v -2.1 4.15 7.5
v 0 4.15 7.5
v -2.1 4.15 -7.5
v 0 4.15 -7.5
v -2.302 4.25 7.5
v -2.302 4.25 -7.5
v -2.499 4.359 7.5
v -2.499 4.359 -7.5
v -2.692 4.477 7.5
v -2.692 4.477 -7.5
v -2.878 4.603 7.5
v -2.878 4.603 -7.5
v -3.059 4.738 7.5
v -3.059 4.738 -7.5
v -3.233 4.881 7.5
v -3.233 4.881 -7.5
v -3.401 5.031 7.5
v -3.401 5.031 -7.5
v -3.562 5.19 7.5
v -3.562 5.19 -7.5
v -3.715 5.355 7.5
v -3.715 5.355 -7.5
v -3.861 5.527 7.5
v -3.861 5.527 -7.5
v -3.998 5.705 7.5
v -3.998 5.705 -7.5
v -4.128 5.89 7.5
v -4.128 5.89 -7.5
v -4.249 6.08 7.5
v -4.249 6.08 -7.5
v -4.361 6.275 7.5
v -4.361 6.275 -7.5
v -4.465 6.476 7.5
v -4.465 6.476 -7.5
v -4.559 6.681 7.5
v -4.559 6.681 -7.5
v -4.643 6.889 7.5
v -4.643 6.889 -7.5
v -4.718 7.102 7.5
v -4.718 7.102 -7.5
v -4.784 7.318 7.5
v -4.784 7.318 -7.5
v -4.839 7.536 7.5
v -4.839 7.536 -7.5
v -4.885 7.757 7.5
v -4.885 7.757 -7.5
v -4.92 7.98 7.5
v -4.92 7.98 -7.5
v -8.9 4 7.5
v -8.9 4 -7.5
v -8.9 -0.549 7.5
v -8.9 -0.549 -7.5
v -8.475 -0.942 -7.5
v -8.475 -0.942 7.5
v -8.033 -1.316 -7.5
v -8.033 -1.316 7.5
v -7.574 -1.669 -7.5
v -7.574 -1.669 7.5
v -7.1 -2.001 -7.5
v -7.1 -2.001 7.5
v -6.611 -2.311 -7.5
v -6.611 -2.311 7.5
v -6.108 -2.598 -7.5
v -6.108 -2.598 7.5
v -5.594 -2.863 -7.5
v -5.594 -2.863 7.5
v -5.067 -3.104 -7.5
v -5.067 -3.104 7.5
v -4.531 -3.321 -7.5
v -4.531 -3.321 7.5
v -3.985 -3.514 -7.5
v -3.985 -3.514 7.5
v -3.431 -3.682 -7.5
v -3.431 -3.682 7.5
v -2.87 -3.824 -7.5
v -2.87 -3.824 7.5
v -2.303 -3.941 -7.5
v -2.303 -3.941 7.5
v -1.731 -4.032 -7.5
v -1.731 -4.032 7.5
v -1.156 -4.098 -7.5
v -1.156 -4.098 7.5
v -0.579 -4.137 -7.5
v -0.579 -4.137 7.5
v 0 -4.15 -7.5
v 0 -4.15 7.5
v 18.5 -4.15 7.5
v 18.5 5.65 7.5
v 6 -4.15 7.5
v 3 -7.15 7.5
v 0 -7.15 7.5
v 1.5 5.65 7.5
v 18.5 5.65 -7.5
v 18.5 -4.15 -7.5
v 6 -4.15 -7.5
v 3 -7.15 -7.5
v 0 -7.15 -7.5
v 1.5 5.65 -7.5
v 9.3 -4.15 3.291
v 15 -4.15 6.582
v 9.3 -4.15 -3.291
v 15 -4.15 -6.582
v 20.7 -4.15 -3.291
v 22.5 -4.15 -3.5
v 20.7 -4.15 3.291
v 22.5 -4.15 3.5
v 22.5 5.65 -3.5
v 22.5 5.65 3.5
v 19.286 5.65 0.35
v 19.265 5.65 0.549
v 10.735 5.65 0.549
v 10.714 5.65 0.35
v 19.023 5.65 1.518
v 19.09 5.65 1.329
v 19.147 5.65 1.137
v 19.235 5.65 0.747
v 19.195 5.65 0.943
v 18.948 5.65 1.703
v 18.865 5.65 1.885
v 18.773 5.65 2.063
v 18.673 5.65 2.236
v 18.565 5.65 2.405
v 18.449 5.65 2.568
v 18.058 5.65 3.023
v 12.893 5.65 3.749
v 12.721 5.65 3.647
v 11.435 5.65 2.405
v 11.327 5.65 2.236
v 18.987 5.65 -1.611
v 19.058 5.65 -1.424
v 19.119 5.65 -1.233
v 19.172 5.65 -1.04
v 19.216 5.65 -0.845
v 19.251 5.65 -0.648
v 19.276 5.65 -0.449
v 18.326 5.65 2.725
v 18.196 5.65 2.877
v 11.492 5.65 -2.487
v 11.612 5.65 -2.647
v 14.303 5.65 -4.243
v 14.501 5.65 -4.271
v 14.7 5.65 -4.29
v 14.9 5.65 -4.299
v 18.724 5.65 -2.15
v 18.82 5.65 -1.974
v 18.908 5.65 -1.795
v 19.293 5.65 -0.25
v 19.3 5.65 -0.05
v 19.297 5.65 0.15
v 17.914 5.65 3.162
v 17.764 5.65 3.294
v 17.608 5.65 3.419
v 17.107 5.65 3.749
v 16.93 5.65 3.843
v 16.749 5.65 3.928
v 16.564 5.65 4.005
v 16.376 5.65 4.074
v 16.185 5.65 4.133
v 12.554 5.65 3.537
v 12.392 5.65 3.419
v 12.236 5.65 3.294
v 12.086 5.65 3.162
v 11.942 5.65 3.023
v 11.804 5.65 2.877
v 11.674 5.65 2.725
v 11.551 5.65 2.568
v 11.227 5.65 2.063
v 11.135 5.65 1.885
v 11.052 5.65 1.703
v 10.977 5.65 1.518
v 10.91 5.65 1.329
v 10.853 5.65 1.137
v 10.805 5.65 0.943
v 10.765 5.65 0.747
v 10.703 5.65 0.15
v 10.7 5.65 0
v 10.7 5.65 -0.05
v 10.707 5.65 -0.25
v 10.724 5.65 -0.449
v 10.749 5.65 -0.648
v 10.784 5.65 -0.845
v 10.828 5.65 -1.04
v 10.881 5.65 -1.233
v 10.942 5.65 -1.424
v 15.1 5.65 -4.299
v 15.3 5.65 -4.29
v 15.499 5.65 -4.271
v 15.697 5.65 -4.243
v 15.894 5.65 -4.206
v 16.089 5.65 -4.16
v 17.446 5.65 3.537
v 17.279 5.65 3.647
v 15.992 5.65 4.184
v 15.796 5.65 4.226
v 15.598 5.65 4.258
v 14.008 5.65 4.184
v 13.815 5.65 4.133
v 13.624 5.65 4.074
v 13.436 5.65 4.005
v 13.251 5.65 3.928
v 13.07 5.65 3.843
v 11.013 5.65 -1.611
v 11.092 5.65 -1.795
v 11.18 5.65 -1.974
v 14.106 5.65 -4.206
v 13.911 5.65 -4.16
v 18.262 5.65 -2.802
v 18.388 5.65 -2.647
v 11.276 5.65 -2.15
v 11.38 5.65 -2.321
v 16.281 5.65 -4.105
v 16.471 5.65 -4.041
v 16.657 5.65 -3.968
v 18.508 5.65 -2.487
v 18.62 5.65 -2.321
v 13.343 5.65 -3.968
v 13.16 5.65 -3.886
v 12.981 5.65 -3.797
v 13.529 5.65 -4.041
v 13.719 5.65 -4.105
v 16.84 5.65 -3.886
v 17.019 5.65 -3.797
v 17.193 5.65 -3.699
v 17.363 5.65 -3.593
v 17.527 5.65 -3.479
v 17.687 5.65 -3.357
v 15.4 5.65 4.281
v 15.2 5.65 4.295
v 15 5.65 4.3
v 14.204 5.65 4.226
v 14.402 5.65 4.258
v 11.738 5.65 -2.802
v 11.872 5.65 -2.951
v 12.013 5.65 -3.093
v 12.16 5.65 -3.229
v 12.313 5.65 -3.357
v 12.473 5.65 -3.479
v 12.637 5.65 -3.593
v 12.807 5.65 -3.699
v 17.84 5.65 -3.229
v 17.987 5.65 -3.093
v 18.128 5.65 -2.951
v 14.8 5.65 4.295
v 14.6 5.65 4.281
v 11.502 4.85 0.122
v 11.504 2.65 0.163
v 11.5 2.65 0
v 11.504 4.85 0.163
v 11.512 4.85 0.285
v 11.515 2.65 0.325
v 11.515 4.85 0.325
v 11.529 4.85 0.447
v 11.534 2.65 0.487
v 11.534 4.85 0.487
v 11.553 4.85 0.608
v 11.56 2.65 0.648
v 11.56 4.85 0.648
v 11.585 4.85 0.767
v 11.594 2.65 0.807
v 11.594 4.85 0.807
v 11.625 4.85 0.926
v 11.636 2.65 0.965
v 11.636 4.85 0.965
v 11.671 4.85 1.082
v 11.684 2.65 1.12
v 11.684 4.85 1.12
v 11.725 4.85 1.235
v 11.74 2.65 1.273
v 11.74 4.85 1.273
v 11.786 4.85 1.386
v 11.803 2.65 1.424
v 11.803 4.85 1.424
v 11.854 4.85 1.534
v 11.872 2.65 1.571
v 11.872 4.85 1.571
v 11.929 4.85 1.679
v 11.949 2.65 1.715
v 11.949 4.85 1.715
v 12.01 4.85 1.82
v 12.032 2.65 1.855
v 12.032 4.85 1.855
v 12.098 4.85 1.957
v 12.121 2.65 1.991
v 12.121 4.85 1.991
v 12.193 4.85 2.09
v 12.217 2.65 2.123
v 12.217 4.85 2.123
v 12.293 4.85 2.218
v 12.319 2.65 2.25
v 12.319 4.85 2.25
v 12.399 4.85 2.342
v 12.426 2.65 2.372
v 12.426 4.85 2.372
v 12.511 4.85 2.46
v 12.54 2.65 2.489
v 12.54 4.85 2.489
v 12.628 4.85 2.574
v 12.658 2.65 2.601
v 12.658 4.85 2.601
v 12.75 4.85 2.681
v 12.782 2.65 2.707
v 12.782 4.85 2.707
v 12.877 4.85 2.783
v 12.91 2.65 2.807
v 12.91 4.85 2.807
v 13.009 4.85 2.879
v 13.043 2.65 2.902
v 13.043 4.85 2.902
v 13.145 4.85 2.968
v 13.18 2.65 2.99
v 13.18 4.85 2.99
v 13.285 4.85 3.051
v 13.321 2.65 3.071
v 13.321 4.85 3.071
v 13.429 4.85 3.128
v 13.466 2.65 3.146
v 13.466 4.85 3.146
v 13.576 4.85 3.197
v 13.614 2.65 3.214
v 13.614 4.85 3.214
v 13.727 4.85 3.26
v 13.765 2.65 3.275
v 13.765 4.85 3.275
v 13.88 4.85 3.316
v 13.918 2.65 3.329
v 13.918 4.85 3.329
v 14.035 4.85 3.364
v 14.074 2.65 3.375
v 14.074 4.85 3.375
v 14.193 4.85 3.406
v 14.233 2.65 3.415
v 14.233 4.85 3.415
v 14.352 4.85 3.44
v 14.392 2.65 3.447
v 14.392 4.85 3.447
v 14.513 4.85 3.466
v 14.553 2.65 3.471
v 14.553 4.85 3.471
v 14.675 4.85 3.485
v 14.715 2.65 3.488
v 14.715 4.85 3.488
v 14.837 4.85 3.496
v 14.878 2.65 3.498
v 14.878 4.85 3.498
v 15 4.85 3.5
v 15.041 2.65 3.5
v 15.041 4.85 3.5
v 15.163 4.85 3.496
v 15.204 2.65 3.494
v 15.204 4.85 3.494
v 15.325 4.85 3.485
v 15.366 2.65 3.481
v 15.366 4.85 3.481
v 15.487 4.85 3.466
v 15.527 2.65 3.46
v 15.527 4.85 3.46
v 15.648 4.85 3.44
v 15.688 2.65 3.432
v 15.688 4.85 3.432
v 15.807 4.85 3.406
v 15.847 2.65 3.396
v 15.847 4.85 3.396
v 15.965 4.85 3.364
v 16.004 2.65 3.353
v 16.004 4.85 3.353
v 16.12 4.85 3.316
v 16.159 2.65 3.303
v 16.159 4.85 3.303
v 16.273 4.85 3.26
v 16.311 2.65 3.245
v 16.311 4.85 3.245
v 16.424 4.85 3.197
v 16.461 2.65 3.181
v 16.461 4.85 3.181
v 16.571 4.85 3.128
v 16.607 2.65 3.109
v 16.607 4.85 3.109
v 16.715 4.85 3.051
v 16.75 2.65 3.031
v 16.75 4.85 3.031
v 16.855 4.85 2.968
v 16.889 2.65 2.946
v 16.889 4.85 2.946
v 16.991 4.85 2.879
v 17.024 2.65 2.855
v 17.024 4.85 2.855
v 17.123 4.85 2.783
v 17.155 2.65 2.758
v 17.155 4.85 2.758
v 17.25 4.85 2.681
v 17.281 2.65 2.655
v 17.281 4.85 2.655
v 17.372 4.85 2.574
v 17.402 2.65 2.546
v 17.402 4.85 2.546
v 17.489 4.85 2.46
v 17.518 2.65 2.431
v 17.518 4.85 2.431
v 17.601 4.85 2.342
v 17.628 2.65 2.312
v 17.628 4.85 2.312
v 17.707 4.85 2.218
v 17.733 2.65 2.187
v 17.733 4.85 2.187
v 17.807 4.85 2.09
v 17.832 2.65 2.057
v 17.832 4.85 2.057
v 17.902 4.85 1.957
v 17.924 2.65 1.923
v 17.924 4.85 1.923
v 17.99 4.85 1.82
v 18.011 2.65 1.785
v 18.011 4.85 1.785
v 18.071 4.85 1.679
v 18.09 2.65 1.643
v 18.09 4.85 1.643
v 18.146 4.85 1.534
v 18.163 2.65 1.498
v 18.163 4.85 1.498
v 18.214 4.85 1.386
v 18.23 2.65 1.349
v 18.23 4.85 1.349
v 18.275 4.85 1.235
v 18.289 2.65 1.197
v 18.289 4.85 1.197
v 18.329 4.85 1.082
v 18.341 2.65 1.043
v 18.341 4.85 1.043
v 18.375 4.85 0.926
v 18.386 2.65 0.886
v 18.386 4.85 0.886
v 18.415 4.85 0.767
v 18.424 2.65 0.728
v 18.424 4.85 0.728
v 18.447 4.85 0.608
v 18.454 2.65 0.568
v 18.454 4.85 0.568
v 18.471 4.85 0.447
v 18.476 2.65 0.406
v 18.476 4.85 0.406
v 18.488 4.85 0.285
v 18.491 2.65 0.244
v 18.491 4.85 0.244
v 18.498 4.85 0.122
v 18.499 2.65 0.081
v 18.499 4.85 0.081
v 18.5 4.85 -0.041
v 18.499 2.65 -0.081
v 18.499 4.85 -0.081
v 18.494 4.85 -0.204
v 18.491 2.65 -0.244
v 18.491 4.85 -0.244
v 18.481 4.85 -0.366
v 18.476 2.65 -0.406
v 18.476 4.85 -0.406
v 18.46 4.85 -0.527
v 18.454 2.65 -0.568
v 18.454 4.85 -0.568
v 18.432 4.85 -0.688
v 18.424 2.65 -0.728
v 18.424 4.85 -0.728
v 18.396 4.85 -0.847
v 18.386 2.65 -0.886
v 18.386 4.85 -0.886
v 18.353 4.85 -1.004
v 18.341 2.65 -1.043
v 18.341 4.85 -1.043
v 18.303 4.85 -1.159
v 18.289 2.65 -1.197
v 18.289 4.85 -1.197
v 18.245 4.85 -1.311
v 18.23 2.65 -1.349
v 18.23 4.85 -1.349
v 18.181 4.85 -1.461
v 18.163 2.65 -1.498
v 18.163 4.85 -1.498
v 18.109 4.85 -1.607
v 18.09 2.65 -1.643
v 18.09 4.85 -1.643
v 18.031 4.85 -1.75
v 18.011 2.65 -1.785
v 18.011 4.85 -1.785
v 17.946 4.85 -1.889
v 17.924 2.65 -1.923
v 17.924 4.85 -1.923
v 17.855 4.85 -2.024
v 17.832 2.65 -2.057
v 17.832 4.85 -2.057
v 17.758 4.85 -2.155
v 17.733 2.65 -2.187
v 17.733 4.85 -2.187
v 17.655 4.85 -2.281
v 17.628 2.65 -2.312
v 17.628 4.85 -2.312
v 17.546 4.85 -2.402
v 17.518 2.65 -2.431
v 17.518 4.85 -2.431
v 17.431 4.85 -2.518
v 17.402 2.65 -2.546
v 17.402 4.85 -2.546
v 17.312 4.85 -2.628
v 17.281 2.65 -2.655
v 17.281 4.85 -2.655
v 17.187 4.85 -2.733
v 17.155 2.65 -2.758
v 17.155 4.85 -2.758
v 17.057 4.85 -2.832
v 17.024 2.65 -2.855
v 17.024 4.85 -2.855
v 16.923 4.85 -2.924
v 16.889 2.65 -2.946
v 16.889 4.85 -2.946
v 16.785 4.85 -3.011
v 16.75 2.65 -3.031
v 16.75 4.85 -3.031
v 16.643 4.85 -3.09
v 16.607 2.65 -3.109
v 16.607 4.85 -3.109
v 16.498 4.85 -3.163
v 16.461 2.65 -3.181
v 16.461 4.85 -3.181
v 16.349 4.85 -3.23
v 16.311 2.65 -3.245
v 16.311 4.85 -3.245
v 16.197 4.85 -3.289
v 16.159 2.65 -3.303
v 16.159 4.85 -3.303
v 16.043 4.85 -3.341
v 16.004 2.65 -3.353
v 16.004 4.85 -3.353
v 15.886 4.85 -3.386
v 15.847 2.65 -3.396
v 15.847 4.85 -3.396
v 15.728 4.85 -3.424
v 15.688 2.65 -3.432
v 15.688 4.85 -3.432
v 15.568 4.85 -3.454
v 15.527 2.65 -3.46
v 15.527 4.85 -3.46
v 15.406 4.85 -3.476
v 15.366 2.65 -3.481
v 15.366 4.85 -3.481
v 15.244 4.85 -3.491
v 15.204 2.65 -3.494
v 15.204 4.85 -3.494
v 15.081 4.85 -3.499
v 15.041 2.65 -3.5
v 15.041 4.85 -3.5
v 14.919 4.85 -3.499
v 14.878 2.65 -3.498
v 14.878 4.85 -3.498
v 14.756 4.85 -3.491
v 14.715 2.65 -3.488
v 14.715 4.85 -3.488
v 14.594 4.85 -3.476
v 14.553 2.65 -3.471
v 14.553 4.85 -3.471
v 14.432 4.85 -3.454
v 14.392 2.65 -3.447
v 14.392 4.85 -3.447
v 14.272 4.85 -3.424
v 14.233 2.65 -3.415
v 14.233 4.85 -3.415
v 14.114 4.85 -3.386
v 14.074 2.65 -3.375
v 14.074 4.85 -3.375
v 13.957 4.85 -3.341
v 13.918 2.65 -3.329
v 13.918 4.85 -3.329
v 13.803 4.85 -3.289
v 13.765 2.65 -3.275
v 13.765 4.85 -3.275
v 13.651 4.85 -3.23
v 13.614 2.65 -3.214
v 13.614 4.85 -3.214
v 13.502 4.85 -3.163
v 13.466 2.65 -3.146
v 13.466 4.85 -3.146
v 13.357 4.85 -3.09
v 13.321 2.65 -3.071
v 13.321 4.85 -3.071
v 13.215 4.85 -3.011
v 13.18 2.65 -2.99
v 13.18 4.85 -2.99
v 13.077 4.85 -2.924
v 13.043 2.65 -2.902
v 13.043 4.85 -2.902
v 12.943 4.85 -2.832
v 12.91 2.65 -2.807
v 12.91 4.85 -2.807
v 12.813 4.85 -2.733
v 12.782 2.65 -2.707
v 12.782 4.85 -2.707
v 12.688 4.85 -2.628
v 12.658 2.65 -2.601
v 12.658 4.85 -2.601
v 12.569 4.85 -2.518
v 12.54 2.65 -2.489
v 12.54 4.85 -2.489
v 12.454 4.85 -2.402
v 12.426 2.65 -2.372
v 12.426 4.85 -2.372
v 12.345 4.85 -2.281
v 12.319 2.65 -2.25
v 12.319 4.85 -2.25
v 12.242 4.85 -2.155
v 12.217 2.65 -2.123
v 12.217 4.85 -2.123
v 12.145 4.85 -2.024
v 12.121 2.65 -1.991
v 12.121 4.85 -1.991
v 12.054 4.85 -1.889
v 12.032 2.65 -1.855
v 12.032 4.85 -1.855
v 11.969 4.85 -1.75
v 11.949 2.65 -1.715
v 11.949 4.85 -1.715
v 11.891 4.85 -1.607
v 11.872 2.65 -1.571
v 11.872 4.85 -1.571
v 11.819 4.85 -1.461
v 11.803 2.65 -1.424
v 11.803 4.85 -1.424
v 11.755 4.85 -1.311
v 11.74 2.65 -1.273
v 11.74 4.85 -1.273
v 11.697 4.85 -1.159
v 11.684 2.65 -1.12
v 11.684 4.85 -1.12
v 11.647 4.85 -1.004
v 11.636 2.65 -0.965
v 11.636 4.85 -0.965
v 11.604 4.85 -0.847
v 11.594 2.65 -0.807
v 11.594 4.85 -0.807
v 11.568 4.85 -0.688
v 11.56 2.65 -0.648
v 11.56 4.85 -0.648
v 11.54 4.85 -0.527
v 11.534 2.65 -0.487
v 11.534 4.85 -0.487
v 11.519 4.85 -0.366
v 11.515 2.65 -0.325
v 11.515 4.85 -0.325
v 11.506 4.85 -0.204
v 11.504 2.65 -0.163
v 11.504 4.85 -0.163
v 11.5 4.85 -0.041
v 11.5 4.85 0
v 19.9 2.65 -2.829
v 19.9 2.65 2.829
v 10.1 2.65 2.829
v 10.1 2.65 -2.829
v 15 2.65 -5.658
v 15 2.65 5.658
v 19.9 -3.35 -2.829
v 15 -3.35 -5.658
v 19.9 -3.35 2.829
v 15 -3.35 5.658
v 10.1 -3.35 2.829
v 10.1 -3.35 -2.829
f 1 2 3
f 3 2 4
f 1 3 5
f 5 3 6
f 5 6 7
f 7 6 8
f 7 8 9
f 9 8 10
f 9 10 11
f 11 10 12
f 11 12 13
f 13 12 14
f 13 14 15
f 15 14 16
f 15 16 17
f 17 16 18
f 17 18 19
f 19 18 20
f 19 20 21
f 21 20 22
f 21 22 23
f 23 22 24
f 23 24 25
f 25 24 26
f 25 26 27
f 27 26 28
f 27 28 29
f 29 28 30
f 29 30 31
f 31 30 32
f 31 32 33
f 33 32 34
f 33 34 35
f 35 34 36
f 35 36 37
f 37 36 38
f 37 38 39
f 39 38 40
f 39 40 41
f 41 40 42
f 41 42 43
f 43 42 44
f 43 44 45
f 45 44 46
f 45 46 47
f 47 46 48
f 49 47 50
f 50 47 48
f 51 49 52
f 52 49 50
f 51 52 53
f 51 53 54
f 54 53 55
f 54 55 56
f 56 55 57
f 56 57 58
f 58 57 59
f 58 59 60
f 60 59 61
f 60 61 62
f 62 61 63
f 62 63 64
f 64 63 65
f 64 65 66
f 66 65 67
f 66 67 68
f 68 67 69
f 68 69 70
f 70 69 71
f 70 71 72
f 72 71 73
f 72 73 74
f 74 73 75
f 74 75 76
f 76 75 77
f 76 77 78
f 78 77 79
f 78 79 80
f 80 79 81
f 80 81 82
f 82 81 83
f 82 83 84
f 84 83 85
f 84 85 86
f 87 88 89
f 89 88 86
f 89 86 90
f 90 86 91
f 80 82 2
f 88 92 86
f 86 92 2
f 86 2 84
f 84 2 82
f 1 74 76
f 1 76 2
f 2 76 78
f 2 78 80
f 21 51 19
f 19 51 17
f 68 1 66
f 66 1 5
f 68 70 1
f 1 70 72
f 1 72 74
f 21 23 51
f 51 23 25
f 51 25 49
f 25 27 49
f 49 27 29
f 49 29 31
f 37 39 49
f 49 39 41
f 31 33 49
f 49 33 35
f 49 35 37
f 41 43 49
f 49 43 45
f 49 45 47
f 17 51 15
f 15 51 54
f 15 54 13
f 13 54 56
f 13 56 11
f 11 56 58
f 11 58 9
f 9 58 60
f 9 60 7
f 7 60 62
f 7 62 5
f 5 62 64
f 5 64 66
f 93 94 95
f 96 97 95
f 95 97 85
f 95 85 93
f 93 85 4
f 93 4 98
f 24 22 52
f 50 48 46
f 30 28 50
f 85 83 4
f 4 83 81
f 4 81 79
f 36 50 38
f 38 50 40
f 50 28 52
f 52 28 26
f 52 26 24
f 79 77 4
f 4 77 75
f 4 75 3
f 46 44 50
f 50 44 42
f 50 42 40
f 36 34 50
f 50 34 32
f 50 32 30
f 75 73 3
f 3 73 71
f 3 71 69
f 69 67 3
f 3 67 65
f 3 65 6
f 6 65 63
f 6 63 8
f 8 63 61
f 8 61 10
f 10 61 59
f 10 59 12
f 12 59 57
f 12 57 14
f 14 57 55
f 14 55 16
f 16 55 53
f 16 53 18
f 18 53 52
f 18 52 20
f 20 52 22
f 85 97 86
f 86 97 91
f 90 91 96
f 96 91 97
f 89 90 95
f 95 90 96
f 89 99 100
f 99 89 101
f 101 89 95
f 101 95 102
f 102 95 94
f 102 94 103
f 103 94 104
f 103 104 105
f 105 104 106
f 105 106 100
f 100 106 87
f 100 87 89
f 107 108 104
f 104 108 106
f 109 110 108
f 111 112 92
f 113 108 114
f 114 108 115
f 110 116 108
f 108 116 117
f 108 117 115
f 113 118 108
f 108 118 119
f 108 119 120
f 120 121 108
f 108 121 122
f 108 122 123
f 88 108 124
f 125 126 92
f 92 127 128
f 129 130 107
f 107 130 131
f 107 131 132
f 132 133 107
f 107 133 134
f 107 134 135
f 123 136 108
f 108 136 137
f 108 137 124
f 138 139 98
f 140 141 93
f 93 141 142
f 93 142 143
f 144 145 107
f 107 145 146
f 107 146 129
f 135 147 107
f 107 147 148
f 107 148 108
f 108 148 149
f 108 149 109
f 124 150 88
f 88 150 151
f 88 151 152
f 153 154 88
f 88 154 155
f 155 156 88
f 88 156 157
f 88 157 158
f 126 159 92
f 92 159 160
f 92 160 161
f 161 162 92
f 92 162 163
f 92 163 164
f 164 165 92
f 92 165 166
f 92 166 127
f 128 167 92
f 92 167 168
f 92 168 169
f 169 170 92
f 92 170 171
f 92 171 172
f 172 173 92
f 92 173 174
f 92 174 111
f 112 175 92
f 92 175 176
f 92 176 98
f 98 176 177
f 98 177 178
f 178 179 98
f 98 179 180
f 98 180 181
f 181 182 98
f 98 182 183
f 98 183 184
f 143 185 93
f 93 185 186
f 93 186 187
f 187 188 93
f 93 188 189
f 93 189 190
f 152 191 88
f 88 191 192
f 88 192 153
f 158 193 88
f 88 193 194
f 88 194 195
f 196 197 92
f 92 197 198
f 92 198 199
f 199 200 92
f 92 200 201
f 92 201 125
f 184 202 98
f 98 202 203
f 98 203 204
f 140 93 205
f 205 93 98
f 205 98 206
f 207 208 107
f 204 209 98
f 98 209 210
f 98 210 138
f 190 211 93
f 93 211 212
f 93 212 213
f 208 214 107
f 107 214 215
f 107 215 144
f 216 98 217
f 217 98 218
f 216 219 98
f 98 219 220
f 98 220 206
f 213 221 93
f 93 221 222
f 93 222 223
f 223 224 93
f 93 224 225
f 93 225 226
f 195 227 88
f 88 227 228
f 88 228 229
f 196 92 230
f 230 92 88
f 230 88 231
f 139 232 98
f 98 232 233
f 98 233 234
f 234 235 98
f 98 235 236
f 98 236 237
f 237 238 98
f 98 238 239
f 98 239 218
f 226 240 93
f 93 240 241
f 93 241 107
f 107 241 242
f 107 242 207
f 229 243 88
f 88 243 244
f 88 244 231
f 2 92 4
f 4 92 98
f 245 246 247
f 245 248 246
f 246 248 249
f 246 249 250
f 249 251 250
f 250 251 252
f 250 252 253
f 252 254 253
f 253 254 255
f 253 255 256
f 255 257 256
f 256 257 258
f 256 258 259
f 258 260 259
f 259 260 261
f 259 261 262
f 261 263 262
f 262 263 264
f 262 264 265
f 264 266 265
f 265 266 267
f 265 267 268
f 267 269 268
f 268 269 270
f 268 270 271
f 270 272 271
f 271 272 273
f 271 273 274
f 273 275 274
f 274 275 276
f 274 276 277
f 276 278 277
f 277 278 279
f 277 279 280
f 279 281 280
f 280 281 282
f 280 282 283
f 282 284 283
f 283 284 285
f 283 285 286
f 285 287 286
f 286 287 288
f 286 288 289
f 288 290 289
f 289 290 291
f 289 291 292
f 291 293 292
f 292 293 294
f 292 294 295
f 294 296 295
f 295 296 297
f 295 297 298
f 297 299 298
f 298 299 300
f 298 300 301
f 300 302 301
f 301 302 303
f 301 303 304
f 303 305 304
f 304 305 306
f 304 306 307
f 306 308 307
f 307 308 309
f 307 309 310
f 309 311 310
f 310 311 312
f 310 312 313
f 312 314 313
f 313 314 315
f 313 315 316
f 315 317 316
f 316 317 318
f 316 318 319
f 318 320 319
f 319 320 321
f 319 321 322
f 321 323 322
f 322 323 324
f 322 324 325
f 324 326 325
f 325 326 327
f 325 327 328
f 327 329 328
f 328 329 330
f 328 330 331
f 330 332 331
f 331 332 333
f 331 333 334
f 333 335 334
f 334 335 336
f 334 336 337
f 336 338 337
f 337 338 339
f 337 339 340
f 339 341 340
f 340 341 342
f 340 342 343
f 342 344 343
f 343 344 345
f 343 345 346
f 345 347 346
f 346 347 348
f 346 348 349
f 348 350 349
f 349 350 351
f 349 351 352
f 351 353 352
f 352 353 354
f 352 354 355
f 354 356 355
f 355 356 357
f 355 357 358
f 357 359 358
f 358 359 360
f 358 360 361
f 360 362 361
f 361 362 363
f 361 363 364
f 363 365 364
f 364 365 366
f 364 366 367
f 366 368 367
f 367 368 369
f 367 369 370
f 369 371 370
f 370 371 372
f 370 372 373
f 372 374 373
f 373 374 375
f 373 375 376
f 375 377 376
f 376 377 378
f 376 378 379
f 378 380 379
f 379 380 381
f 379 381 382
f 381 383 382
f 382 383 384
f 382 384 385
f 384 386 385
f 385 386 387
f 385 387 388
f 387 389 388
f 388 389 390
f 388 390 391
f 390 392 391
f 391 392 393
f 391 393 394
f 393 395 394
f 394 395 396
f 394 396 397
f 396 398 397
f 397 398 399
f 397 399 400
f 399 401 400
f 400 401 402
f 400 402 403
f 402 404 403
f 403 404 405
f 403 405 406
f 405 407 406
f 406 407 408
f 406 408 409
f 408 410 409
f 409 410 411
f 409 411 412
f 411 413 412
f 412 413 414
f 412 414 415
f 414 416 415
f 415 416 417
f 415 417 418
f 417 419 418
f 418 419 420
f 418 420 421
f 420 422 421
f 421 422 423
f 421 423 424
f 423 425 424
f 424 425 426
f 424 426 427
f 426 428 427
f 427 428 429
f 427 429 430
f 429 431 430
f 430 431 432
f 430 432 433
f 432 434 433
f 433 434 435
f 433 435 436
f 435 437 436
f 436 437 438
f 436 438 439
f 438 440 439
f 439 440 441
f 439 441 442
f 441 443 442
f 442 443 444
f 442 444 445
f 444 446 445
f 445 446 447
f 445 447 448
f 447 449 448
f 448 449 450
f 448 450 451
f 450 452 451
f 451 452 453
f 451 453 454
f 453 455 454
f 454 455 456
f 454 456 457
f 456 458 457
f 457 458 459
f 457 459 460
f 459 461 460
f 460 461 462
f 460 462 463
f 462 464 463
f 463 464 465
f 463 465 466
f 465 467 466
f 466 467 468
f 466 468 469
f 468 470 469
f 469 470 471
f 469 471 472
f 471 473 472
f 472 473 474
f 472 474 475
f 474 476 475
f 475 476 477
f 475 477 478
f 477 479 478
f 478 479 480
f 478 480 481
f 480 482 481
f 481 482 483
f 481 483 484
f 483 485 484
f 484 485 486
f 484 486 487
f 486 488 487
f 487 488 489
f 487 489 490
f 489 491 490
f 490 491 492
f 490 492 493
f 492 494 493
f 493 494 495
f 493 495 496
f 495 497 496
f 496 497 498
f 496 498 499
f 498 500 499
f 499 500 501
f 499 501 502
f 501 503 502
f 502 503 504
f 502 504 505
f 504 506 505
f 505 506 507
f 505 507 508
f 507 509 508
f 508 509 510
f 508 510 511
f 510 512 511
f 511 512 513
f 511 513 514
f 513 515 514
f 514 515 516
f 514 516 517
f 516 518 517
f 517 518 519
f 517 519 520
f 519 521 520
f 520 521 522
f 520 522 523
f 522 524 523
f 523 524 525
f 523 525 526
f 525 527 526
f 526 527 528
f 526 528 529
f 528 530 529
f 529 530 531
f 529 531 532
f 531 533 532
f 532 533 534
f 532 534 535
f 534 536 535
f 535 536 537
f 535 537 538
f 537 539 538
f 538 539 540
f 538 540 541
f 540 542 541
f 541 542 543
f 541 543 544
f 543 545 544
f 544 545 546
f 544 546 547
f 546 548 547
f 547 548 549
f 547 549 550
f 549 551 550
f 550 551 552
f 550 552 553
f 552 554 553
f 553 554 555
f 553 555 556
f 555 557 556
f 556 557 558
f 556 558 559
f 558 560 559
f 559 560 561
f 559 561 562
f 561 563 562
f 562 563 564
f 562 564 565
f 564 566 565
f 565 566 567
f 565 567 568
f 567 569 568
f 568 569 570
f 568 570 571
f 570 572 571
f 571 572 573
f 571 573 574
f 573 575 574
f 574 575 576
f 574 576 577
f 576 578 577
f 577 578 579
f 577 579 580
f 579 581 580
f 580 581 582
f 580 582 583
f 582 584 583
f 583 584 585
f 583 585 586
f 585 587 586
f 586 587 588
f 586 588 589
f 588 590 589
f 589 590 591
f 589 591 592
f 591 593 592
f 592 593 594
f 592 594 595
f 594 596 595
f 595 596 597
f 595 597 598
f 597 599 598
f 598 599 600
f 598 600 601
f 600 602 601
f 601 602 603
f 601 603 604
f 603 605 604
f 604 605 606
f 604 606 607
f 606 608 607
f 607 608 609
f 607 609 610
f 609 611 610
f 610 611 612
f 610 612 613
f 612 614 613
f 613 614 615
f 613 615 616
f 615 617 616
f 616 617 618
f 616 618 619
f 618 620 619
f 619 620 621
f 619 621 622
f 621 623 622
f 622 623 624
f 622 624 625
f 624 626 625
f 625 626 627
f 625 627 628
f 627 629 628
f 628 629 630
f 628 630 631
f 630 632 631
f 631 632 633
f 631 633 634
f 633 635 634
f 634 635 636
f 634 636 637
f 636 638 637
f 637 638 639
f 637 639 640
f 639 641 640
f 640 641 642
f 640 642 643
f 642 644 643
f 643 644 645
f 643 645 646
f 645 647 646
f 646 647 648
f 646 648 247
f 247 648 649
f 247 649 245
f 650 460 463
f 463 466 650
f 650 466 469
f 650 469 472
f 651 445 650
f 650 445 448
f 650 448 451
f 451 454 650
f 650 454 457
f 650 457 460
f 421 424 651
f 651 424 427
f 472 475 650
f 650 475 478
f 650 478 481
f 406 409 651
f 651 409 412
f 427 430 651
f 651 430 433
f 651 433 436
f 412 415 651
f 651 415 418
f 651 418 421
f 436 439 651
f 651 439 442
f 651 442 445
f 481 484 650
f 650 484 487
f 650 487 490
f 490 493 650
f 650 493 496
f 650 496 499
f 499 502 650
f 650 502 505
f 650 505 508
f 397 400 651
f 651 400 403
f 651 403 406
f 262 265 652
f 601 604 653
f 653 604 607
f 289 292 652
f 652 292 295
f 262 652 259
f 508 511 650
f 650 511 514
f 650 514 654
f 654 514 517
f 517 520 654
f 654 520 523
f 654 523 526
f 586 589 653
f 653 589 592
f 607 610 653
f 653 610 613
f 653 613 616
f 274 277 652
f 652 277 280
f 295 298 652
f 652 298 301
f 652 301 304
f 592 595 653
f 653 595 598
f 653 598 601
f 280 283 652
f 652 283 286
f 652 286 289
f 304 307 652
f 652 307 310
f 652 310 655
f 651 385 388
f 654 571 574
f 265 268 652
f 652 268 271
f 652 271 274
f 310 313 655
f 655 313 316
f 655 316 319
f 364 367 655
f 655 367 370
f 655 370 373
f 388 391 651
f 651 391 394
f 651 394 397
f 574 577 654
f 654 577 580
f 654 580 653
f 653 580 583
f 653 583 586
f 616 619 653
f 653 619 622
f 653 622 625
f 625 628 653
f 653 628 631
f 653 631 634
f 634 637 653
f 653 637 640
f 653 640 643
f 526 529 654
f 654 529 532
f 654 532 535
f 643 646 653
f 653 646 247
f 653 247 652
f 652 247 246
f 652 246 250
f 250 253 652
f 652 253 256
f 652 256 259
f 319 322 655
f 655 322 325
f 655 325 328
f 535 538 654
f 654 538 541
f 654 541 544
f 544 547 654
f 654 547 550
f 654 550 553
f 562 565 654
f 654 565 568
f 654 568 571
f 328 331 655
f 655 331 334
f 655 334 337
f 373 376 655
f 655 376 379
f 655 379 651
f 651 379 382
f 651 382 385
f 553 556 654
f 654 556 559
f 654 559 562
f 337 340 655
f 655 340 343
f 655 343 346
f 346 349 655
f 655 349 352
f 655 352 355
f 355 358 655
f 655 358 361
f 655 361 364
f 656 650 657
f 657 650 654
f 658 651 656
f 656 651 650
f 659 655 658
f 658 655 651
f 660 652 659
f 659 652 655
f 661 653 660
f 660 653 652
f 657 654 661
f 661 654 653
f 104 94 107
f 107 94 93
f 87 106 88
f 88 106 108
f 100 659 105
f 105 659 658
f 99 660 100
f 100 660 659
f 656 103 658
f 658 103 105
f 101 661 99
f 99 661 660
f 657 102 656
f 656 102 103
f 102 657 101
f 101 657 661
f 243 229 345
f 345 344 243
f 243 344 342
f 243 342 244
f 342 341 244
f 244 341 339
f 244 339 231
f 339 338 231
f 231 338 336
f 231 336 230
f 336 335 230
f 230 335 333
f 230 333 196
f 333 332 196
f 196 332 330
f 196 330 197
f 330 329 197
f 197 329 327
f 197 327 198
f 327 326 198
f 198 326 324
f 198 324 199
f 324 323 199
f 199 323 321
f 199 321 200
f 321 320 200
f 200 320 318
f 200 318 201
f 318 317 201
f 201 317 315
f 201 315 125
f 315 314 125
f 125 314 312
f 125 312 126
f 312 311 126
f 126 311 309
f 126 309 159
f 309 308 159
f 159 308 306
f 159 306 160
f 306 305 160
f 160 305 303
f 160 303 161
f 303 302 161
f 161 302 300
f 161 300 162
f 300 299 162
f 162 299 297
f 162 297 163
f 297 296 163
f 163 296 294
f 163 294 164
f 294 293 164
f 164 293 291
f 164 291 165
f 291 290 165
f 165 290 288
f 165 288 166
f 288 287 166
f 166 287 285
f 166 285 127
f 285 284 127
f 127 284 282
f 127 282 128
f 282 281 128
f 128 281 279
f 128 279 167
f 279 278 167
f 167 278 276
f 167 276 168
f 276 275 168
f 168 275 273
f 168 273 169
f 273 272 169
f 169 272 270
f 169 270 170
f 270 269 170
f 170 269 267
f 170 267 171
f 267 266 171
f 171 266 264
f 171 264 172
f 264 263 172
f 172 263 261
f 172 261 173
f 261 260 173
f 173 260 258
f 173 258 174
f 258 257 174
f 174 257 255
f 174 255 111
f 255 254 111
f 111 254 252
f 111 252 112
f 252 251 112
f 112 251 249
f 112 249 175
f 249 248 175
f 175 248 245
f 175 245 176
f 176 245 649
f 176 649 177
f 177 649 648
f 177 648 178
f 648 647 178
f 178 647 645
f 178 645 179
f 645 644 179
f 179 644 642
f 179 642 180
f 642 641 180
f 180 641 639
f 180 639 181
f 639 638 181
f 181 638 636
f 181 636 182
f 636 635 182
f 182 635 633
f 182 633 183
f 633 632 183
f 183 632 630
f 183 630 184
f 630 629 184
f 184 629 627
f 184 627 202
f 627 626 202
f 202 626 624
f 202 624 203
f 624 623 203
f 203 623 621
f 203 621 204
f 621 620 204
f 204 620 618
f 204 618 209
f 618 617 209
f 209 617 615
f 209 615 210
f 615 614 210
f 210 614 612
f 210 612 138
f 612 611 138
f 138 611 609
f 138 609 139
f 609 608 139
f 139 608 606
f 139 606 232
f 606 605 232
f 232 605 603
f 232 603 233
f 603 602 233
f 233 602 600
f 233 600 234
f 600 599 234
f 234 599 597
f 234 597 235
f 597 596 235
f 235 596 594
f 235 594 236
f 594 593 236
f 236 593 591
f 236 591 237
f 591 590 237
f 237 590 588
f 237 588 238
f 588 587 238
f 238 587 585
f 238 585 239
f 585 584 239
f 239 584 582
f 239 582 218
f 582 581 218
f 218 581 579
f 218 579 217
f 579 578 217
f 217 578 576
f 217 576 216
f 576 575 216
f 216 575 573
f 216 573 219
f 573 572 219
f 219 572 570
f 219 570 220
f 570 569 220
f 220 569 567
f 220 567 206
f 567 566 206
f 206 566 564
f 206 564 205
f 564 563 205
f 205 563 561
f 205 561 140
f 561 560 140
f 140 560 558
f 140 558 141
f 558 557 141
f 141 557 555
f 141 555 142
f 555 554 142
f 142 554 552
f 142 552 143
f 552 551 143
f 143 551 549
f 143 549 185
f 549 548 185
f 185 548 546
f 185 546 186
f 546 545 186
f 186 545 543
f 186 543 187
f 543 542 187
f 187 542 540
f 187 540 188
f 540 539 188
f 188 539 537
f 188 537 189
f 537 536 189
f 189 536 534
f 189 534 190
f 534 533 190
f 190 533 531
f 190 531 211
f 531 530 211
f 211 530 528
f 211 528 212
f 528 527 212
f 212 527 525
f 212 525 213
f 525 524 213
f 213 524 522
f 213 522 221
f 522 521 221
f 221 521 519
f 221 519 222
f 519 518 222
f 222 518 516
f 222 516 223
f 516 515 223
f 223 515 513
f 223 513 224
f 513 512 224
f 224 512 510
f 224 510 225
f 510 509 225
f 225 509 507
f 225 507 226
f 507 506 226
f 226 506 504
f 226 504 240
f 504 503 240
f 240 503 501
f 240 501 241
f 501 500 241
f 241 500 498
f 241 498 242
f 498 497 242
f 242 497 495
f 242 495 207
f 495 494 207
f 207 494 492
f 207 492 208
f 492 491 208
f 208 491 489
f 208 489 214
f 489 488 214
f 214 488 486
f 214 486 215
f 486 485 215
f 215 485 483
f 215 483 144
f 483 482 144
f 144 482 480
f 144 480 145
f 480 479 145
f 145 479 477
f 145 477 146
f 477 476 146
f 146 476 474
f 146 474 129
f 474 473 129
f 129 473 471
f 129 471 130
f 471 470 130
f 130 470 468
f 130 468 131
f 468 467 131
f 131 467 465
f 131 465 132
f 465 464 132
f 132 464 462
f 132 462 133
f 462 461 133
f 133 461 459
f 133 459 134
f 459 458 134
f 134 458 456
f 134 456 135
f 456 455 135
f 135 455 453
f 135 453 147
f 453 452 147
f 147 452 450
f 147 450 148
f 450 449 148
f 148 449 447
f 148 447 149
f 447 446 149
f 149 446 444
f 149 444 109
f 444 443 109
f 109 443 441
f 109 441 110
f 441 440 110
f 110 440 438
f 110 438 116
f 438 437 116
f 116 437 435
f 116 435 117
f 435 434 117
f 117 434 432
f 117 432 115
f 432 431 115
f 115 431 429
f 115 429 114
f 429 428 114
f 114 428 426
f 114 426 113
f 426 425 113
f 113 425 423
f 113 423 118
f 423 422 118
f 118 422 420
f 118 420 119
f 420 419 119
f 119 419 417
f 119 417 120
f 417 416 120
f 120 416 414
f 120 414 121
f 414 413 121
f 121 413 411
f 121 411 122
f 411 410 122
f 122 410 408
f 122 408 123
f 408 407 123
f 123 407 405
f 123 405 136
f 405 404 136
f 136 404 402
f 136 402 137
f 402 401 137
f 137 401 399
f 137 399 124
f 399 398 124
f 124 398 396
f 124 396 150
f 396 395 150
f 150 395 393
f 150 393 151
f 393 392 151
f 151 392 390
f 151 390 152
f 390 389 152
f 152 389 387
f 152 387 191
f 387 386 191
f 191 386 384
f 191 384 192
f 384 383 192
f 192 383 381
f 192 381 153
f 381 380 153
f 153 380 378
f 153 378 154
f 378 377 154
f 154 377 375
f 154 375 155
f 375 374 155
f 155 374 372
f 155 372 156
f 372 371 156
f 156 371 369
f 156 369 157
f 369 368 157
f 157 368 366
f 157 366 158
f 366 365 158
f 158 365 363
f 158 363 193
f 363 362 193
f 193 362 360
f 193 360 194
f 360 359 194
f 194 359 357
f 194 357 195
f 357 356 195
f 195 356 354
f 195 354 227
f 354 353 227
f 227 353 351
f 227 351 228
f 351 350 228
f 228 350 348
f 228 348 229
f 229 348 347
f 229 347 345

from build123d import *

# Parameters (mm, degrees)
SALIENTE_EXTRUIR1_DEPTH = 7.5
SALIENTE_EXTRUIR2_DEPTH = 15
CROQUIS7_R              = 3.5
CORTAR_EXTRUIR4_DEPTH   = 13.8
CORTAR_EXTRUIR5_START   = -3
CORTAR_EXTRUIR5_DEPTH   = 10
CHAFL_N4_SIZE           = 4
CHAFL_N5_SIZE           = 0.8


with BuildPart() as part:
    # Croquis1 → Saliente-Extruir1 (new body, symmetric)
    with BuildSketch(Plane.XY):
        with BuildLine():
            Line((-8.9, 4), (-4.920420362, 7.979579638))
            ThreePointArc((-4.920420362, 7.979579638), (-3.998499164, 5.705173276), (-2.1, 4.15))
            Line((-2.1, 4.15), (0, 4.15))
            Line((0, 4.15), (0, -4.15))
            ThreePointArc((0, -4.15), (-4.800362316, -3.215771009), (-8.9, -0.549456506))
            Line((-8.9, -0.549456506), (-8.9, 4))
        make_face()
    extrude(amount=SALIENTE_EXTRUIR1_DEPTH, both=True)

    # Croquis6 → Saliente-Extruir2 (add, through all)
    with BuildSketch(Plane(origin=(0, 0, -7.5), x_dir=(-1, 0, 0), z_dir=(0, 0, -1))):
        Polygon((0, -4.15), (0, -7.15), (-3, -7.15), (-6, -4.15), (-22.5, -4.15), (-22.5, 5.65), (-1.5, 5.65), (0, 4.15), align=None)
    extrude(amount=-SALIENTE_EXTRUIR2_DEPTH)

    # Croquis7 → Cortar-Extruir4 (cut, through all)
    with BuildSketch(Plane(origin=(0, 5.65, 0), x_dir=(1, 0, 0), z_dir=(0, 1, 0))):
        with Locations((15, 0)):
            Circle(CROQUIS7_R)
    extrude(amount=-CORTAR_EXTRUIR4_DEPTH, mode=Mode.SUBTRACT)

    # Croquis8 → Cortar-Extruir5 (cut)
    with BuildSketch(Plane(origin=(0, 5.65, 0), x_dir=(1, 0, 0), z_dir=(0, 1, 0)).offset(CORTAR_EXTRUIR5_START)):
        Polygon((15, 5.658032638), (10.1, 2.829016319), (10.1, -2.829016319), (15, -5.658032638), (19.9, -2.829016319), (19.9, 2.829016319), align=None)
    extrude(amount=-CORTAR_EXTRUIR5_DEPTH, mode=Mode.SUBTRACT)

    # Chaflán4
    chafl_n4_edges = [part.edges().sort_by_distance(p)[0] for p in [
        (22.5, 0.75, 7.5),
        (22.5, 0.75, -7.5),
    ]]
    chamfer(chafl_n4_edges, length=CHAFL_N4_SIZE)

    # Chaflán5
    chafl_n5_edges = [part.edges().sort_by_distance(p)[0] for p in [
        (11.5, 5.65, 0),
        (12.55, -4.15, -4.243524479),
        (10.1, -4.15, 0),
        (12.55, -4.15, 4.243524479),
        (17.45, -4.15, 4.243524479),
        (19.9, -4.15, 0),
        (17.45, -4.15, -4.243524479),
    ]]
    chamfer(chafl_n5_edges, length=CHAFL_N5_SIZE)


solid = part.part
